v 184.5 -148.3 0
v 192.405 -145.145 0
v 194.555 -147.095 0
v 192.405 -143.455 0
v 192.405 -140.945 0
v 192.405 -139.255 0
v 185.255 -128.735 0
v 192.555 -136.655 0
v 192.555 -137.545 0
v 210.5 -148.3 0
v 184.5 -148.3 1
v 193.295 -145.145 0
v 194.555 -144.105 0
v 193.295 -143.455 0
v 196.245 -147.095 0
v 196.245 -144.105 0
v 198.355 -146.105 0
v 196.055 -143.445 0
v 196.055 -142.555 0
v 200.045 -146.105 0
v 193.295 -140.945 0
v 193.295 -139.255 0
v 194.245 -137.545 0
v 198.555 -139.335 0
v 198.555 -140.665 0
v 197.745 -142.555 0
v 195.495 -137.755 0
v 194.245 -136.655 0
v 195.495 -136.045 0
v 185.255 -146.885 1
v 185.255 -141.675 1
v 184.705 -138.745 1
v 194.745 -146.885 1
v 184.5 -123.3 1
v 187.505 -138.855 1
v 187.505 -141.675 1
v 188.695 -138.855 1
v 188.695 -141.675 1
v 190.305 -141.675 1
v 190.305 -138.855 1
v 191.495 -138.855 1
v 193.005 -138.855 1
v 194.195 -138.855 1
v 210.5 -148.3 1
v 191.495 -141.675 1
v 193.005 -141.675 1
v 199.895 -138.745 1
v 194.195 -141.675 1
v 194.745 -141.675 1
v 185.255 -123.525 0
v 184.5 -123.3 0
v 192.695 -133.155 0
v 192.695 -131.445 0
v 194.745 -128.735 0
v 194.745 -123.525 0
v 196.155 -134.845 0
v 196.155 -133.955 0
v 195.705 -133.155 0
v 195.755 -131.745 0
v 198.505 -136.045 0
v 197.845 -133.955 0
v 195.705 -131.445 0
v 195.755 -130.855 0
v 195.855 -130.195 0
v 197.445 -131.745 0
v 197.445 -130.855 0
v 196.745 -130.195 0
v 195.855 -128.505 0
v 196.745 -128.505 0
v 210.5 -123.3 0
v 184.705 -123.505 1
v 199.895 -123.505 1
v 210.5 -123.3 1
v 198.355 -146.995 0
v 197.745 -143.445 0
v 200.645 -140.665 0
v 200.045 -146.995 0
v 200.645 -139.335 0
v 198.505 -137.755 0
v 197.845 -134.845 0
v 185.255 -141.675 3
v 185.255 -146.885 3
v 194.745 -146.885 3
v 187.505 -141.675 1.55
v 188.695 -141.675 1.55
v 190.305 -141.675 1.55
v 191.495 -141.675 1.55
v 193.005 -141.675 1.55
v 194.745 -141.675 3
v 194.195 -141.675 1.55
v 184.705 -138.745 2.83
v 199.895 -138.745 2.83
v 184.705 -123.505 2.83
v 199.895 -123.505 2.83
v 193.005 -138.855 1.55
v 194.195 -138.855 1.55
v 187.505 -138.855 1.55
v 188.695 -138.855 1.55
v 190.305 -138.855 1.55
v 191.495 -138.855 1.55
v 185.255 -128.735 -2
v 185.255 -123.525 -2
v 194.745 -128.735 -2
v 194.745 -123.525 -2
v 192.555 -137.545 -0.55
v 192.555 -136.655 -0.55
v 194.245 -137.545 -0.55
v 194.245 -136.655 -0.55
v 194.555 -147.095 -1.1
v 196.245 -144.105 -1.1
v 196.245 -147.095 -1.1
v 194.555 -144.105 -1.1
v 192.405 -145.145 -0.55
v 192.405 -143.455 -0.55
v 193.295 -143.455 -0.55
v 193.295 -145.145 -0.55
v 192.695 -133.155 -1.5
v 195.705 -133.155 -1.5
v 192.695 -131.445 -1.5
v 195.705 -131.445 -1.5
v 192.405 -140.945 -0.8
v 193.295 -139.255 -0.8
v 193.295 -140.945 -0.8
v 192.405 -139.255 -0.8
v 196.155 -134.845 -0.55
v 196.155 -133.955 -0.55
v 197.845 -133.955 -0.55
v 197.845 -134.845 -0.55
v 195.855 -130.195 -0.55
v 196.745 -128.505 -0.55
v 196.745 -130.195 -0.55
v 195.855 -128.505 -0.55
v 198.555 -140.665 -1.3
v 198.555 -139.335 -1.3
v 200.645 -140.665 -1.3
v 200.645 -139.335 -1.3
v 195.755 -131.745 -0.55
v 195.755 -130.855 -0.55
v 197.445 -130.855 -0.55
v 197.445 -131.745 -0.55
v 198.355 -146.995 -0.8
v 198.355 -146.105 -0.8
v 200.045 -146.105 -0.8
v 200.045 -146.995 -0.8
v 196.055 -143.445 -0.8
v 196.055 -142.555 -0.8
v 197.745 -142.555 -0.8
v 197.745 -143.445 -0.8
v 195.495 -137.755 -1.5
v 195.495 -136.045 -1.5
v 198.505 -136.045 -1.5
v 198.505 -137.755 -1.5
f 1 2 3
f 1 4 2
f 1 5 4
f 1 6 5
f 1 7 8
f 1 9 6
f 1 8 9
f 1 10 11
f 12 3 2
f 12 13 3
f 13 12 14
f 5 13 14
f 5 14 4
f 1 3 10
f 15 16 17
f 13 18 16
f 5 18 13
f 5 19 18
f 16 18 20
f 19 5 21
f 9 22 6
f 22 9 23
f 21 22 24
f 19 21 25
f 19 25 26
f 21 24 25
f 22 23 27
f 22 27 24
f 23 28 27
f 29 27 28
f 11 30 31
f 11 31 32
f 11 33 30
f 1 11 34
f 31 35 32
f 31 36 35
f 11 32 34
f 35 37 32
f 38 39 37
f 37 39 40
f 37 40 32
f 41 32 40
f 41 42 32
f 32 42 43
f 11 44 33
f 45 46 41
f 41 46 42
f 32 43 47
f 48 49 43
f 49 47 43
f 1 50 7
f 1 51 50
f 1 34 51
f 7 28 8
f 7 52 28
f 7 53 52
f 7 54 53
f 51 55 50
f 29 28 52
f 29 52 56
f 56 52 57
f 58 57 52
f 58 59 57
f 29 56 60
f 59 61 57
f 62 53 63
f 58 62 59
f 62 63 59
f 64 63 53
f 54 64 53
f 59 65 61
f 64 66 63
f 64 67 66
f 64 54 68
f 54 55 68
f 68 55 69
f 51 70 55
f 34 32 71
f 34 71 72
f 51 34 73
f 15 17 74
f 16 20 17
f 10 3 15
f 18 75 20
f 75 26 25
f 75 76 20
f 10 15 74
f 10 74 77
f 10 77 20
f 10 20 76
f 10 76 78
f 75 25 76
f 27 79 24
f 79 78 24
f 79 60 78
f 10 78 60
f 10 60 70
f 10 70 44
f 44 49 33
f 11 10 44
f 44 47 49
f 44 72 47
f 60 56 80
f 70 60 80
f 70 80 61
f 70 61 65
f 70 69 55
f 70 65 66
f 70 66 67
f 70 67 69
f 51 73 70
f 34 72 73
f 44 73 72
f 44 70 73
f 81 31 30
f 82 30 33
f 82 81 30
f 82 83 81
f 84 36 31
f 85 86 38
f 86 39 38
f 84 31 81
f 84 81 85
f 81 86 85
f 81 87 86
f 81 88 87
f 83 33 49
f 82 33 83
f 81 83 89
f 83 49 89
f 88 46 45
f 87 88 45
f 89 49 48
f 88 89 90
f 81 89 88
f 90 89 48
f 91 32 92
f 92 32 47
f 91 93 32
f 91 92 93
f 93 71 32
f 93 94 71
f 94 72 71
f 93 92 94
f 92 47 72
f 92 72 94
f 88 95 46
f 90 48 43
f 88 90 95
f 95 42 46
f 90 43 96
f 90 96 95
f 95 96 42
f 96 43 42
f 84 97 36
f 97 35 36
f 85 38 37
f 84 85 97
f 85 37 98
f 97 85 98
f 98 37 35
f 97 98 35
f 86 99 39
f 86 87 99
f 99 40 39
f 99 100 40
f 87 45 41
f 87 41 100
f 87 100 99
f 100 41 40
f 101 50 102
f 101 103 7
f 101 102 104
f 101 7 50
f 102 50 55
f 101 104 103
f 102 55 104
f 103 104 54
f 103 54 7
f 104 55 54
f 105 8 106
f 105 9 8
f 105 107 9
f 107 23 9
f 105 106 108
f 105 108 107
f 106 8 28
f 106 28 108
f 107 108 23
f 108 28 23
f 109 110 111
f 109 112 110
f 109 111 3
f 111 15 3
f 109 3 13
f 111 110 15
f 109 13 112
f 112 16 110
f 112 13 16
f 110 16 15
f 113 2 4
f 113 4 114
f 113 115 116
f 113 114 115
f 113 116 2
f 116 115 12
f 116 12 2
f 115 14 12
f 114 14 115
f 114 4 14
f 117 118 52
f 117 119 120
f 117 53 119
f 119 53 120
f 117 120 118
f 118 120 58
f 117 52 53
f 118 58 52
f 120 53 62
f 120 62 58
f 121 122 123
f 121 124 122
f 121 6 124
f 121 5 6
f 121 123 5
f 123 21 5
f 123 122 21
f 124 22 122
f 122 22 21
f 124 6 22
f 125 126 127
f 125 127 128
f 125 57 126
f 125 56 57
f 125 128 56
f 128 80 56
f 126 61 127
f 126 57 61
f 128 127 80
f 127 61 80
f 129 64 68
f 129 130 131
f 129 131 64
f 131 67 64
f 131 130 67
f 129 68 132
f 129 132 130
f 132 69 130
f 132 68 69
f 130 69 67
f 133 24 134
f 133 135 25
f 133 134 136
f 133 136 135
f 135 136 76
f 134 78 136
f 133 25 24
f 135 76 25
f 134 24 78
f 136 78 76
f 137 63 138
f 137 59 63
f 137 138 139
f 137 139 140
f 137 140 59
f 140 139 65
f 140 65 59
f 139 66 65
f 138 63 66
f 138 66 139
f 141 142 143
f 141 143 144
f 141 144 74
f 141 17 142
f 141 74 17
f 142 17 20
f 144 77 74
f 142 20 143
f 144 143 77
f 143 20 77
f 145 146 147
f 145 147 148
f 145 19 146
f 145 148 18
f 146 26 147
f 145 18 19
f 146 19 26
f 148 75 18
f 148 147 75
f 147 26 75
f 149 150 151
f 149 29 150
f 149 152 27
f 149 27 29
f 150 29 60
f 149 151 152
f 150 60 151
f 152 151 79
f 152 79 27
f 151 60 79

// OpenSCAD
// generated by make_mockup.py: the short SD board's outline and its parts as blocks
union() {
  linear_extrude(1.0) polygon([[210.5, -148.3], [184.5, -148.3], [184.5, -123.3], [210.5, -123.3]]);
  translate([190.305, -141.745, 0.990]) cube([1.190, 2.890, 0.56]);  // R5
  translate([187.505, -141.745, 0.990]) cube([1.190, 2.890, 0.56]);  // R1
  translate([185.255, -146.885, 0.990]) cube([9.490, 5.210, 2.01]);  // J2
  translate([193.005, -141.745, 0.990]) cube([1.190, 2.890, 0.56]);  // R6
  translate([184.705, -138.745, 0.990]) cube([15.190, 15.240, 1.84]);  // J1
  translate([198.355, -146.995, -0.800]) cube([1.690, 0.890, 0.81]);  // C2
  translate([185.255, -128.735, -2.000]) cube([9.490, 5.210, 2.01]);  // J3
  translate([195.495, -137.755, -1.500]) cube([3.010, 1.710, 1.51]);  // U2
  translate([192.405, -145.145, -0.550]) cube([0.890, 1.690, 0.56]);  // R4
  translate([195.855, -130.195, -0.550]) cube([0.890, 1.690, 0.56]);  // R3
  translate([198.555, -140.665, -1.300]) cube([2.090, 1.330, 1.31]);  // C1
  translate([196.155, -134.845, -0.550]) cube([1.690, 0.890, 0.56]);  // R2
  translate([192.695, -133.155, -1.500]) cube([3.010, 1.710, 1.51]);  // U3
  translate([194.555, -147.095, -1.100]) cube([1.690, 2.990, 1.11]);  // U1
  translate([192.405, -140.945, -0.800]) cube([0.890, 1.690, 0.81]);  // C3
  translate([196.055, -143.445, -0.800]) cube([1.690, 0.890, 0.81]);  // FB1
  translate([192.555, -137.545, -0.550]) cube([1.690, 0.890, 0.56]);  // R8
  translate([195.755, -131.745, -0.550]) cube([1.690, 0.890, 0.56]);  // R7
}
